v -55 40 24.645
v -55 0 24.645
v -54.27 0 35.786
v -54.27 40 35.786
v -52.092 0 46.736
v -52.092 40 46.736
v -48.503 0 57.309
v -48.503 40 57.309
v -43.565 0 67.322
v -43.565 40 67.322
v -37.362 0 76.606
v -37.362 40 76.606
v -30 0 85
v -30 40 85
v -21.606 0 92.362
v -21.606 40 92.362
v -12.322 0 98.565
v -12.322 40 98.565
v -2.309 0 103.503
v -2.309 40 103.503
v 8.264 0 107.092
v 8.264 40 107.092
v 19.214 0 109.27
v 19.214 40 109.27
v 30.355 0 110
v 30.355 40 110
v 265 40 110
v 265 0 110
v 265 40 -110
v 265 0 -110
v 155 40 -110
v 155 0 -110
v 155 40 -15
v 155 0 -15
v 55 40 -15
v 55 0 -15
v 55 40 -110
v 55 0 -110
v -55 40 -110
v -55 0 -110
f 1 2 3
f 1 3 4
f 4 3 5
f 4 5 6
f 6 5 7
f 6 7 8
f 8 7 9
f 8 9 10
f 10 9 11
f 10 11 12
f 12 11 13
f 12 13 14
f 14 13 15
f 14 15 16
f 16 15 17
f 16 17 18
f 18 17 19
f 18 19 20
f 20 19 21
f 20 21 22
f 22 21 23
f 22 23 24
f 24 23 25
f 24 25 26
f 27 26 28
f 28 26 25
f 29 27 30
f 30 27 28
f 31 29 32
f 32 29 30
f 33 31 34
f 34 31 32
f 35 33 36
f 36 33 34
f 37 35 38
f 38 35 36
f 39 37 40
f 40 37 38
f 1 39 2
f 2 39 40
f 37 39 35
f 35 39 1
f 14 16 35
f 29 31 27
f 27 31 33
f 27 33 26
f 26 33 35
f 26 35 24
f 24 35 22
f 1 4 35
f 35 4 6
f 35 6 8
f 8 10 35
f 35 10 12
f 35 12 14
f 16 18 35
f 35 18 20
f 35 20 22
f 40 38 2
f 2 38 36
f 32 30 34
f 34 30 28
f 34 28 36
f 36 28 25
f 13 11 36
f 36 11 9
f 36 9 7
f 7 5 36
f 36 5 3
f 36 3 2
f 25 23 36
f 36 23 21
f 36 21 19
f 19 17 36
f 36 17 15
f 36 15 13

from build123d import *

# Parameters (mm, degrees)
SKETCH1_W           = 100
SKETCH1_H           = 125
BOSS_EXTRUDE1_DEPTH = 40


with BuildPart() as part:
    # Sketch1 → Boss-Extrude1 (new body)
    with BuildSketch(Plane(origin=(0, 0, 0), x_dir=(1, 0, 0), z_dir=(0, 1, 0))):
        with BuildLine():
            ThreePointArc((-55, -24.644660941), (-30, -85), (30.355339059, -110))
            Line((30.355339059, -110), (55, -110))
            Line((55, -110), (55, 15))
            Line((55, 15), (55, 110))
            Line((55, 110), (-55, 110))
            Line((-55, 110), (-55, -24.644660941))
        make_face()
        with Locations((105, -47.5)):
            Rectangle(SKETCH1_W, SKETCH1_H)
        Polygon((155, 15), (155, -110), (265, -110), (265, 110), (155, 110), align=None)
    extrude(amount=BOSS_EXTRUDE1_DEPTH)


solid = part.part
